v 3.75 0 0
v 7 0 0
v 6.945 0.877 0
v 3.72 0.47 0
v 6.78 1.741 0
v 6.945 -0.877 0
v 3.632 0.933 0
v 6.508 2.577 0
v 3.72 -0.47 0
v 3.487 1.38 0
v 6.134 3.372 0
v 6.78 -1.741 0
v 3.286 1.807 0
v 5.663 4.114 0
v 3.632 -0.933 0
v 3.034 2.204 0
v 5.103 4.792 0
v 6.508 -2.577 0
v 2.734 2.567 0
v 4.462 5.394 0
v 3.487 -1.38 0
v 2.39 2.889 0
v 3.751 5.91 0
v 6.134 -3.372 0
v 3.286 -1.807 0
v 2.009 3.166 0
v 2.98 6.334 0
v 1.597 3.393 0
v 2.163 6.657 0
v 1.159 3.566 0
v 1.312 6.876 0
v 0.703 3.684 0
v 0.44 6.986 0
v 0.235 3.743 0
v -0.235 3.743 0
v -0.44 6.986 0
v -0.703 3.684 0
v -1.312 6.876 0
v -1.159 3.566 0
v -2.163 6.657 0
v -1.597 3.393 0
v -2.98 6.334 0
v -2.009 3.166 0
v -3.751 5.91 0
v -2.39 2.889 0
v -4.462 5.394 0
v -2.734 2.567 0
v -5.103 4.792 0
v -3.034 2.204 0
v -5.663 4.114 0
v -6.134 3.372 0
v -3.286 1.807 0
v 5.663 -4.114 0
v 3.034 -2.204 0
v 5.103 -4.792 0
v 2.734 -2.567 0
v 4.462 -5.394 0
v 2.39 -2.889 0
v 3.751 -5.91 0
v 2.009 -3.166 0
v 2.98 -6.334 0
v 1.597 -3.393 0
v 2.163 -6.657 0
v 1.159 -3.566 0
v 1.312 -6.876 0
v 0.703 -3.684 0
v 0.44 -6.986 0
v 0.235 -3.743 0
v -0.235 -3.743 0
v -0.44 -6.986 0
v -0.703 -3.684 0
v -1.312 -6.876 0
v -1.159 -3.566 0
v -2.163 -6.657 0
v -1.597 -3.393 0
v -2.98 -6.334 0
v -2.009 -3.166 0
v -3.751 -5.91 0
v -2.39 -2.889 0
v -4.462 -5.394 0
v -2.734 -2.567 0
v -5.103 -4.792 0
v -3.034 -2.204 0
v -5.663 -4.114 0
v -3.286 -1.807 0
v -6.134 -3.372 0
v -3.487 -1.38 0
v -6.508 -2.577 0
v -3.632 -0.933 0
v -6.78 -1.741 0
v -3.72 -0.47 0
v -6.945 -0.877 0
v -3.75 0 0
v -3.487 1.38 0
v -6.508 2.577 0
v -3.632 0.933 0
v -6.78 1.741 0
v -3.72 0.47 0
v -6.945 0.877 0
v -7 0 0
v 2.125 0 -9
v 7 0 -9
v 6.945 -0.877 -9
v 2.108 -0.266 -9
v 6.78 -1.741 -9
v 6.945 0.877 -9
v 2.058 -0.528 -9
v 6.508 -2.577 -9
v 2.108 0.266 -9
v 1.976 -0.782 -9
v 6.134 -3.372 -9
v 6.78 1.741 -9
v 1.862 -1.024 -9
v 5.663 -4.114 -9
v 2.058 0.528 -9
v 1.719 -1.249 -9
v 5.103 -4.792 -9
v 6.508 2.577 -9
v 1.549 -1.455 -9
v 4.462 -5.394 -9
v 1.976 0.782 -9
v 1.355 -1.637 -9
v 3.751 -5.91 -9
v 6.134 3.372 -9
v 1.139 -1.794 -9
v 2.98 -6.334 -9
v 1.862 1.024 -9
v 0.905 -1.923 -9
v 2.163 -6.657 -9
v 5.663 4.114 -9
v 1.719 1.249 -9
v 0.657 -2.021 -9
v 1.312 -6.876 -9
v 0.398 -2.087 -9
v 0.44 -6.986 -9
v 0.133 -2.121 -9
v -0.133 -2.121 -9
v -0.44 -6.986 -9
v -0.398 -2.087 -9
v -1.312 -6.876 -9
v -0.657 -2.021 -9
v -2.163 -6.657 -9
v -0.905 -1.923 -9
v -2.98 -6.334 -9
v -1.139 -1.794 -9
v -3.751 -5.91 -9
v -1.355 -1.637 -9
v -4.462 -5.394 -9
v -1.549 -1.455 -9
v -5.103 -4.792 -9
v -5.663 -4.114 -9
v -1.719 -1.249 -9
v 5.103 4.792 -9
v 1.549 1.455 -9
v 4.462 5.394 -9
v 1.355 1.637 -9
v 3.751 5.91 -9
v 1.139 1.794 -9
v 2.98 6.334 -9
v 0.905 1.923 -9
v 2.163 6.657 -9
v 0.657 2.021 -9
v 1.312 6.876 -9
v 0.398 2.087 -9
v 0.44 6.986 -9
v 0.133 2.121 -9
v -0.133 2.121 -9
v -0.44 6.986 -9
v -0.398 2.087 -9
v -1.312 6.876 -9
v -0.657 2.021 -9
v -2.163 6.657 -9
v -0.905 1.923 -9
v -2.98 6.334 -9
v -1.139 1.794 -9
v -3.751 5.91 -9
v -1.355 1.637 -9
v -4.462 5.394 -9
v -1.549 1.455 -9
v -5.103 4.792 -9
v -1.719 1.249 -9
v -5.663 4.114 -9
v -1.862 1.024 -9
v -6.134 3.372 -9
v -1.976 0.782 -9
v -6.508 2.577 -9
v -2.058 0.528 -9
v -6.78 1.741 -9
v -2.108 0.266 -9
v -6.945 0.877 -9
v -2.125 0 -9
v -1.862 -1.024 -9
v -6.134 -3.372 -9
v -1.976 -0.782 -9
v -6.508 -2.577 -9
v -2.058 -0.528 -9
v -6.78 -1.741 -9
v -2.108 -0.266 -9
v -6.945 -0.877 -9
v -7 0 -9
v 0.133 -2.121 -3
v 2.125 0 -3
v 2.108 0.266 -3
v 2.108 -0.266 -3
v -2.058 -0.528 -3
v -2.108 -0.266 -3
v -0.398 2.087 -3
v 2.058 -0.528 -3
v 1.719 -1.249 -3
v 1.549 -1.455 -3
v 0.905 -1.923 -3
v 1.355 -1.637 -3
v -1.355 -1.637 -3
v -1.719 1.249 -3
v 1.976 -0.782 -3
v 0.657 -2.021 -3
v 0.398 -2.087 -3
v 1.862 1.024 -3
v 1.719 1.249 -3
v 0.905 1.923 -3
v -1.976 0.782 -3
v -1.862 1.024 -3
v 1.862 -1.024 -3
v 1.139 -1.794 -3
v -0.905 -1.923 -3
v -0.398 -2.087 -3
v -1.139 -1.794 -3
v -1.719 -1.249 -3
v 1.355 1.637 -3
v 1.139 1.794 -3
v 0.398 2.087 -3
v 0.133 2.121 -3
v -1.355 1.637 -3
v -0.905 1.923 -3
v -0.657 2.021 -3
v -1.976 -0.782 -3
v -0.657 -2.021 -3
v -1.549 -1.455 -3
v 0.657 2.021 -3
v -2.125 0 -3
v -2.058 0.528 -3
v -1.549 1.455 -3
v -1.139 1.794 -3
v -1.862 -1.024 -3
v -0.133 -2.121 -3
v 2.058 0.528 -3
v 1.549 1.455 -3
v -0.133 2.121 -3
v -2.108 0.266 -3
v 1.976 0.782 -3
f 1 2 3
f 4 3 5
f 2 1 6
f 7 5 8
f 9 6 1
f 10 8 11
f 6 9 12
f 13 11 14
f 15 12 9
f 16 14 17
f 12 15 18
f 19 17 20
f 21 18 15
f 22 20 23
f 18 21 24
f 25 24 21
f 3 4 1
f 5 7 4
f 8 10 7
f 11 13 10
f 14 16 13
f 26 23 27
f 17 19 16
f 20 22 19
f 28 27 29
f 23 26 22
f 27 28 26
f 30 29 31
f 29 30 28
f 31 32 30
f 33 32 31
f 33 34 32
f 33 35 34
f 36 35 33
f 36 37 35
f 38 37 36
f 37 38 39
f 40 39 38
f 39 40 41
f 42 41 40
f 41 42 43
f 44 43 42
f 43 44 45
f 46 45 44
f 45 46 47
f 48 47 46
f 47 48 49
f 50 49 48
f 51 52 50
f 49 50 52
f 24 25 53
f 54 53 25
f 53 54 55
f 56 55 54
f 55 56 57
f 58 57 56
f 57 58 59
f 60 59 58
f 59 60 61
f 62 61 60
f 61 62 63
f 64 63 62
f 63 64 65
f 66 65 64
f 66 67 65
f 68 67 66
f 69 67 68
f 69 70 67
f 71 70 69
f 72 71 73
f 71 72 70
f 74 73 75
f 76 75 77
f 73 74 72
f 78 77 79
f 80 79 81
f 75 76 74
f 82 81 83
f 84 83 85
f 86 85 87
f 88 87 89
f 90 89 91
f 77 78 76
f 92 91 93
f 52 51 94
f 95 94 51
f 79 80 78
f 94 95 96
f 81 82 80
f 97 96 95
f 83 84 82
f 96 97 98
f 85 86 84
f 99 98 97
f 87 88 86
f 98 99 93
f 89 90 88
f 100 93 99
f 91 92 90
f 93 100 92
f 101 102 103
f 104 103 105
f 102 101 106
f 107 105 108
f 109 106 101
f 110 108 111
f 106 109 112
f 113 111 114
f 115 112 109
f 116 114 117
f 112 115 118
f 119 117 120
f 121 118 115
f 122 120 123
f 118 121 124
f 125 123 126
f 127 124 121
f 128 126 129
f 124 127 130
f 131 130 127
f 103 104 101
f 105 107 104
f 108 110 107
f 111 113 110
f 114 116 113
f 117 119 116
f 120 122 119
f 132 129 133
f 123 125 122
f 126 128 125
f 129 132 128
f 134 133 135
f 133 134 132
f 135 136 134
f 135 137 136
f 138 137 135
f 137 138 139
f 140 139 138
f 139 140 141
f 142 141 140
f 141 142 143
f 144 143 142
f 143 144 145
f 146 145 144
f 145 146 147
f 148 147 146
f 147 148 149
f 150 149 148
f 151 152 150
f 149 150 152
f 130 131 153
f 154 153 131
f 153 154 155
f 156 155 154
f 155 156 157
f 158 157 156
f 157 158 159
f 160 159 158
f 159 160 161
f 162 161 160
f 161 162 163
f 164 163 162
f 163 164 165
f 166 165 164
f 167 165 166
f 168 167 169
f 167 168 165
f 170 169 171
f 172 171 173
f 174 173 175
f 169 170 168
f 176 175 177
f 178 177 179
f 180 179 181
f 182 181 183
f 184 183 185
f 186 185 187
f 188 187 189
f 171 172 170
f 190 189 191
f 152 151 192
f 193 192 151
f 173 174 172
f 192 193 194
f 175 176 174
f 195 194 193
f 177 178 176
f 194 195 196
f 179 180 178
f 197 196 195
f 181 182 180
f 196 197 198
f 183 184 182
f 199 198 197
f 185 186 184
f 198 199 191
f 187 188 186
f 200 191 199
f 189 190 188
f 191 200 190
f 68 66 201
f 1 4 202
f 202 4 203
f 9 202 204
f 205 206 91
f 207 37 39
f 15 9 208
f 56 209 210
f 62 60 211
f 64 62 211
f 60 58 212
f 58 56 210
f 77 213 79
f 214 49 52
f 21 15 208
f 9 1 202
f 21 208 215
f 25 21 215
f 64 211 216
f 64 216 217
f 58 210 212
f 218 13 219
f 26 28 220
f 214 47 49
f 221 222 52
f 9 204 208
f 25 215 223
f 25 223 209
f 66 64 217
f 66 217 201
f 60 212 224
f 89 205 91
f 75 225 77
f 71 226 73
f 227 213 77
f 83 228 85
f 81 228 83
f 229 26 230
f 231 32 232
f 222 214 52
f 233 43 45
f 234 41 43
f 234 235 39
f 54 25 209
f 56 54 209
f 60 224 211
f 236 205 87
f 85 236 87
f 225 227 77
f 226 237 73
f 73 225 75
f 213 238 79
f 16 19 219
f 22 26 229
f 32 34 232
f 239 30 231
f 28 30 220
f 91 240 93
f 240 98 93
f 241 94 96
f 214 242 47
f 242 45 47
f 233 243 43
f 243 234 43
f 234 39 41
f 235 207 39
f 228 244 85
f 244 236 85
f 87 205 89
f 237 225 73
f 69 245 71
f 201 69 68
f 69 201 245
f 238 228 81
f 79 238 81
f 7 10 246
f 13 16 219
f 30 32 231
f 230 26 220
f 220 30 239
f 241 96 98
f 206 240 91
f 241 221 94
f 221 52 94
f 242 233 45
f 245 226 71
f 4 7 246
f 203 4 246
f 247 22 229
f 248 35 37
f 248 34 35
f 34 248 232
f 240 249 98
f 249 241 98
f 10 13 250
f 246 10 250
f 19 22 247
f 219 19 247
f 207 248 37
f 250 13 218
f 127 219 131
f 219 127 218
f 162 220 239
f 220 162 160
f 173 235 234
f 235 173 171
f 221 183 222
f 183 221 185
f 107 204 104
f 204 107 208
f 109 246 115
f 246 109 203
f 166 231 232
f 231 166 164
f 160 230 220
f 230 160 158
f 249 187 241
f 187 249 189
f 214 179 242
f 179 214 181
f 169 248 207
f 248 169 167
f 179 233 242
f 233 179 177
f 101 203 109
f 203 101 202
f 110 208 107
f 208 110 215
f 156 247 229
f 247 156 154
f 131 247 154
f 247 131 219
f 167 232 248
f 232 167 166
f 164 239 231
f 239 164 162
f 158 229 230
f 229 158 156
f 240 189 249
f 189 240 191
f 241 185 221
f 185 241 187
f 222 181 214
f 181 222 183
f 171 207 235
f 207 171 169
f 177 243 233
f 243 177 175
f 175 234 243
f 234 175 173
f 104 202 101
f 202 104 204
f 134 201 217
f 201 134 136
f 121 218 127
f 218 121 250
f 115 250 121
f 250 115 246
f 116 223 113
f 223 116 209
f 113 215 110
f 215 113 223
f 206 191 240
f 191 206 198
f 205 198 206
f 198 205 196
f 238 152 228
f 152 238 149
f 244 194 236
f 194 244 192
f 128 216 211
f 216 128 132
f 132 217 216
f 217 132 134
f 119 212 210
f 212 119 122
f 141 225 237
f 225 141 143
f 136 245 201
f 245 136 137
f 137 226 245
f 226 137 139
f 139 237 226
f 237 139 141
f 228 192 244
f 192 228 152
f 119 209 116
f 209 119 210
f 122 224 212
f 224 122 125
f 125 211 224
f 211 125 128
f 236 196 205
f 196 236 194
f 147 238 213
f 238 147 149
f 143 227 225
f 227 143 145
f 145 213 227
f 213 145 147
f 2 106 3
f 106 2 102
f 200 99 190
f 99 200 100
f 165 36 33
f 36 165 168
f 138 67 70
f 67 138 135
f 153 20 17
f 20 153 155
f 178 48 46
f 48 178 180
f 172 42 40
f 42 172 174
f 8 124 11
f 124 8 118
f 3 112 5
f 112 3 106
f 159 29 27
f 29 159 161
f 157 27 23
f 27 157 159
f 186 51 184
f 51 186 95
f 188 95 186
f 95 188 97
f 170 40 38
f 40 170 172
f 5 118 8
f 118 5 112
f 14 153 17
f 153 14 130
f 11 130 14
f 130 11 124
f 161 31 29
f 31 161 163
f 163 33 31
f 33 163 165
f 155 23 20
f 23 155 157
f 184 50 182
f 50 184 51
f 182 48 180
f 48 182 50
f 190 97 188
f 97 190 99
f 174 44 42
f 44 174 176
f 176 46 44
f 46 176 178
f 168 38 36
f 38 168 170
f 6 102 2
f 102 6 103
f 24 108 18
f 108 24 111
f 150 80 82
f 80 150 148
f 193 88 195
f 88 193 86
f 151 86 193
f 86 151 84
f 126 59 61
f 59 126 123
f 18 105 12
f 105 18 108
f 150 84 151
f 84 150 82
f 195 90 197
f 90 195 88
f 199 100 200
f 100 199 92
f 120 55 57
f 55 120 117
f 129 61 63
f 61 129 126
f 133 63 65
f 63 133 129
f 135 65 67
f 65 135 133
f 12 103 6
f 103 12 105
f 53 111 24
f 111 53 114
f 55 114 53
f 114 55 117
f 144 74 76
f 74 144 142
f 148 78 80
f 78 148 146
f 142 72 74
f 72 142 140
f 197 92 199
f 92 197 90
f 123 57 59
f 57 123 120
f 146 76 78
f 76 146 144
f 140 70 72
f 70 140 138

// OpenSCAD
$fn = 50;


difference() {
	union() {
		translate(v = [0, 0, -9.0000000000]) {
			cylinder(h = 9, r = 7.0000000000);
		}
	}
	union() {
		translate(v = [0, 0, 0]) {
			rotate(a = [0, 0, 0]) {
				difference() {
					union() {
						#translate(v = [0, 0, -9.0000000000]) {
							cylinder(h = 9, r = 2.0000000000);
						}
						#translate(v = [0, 0, -3]) {
							cylinder(h = 3, r = 7.0000000000, r1 = 2.1250000000, r2 = 3.7500000000);
						}
						#translate(v = [0, 0, -9.0000000000]) {
							cylinder(h = 9, r = 2.1250000000);
						}
						#translate(v = [0, 0, -9.0000000000]) {
							cylinder(h = 9, r = 2.0000000000);
						}
					}
					union();
				}
			}
		}
	}
}
